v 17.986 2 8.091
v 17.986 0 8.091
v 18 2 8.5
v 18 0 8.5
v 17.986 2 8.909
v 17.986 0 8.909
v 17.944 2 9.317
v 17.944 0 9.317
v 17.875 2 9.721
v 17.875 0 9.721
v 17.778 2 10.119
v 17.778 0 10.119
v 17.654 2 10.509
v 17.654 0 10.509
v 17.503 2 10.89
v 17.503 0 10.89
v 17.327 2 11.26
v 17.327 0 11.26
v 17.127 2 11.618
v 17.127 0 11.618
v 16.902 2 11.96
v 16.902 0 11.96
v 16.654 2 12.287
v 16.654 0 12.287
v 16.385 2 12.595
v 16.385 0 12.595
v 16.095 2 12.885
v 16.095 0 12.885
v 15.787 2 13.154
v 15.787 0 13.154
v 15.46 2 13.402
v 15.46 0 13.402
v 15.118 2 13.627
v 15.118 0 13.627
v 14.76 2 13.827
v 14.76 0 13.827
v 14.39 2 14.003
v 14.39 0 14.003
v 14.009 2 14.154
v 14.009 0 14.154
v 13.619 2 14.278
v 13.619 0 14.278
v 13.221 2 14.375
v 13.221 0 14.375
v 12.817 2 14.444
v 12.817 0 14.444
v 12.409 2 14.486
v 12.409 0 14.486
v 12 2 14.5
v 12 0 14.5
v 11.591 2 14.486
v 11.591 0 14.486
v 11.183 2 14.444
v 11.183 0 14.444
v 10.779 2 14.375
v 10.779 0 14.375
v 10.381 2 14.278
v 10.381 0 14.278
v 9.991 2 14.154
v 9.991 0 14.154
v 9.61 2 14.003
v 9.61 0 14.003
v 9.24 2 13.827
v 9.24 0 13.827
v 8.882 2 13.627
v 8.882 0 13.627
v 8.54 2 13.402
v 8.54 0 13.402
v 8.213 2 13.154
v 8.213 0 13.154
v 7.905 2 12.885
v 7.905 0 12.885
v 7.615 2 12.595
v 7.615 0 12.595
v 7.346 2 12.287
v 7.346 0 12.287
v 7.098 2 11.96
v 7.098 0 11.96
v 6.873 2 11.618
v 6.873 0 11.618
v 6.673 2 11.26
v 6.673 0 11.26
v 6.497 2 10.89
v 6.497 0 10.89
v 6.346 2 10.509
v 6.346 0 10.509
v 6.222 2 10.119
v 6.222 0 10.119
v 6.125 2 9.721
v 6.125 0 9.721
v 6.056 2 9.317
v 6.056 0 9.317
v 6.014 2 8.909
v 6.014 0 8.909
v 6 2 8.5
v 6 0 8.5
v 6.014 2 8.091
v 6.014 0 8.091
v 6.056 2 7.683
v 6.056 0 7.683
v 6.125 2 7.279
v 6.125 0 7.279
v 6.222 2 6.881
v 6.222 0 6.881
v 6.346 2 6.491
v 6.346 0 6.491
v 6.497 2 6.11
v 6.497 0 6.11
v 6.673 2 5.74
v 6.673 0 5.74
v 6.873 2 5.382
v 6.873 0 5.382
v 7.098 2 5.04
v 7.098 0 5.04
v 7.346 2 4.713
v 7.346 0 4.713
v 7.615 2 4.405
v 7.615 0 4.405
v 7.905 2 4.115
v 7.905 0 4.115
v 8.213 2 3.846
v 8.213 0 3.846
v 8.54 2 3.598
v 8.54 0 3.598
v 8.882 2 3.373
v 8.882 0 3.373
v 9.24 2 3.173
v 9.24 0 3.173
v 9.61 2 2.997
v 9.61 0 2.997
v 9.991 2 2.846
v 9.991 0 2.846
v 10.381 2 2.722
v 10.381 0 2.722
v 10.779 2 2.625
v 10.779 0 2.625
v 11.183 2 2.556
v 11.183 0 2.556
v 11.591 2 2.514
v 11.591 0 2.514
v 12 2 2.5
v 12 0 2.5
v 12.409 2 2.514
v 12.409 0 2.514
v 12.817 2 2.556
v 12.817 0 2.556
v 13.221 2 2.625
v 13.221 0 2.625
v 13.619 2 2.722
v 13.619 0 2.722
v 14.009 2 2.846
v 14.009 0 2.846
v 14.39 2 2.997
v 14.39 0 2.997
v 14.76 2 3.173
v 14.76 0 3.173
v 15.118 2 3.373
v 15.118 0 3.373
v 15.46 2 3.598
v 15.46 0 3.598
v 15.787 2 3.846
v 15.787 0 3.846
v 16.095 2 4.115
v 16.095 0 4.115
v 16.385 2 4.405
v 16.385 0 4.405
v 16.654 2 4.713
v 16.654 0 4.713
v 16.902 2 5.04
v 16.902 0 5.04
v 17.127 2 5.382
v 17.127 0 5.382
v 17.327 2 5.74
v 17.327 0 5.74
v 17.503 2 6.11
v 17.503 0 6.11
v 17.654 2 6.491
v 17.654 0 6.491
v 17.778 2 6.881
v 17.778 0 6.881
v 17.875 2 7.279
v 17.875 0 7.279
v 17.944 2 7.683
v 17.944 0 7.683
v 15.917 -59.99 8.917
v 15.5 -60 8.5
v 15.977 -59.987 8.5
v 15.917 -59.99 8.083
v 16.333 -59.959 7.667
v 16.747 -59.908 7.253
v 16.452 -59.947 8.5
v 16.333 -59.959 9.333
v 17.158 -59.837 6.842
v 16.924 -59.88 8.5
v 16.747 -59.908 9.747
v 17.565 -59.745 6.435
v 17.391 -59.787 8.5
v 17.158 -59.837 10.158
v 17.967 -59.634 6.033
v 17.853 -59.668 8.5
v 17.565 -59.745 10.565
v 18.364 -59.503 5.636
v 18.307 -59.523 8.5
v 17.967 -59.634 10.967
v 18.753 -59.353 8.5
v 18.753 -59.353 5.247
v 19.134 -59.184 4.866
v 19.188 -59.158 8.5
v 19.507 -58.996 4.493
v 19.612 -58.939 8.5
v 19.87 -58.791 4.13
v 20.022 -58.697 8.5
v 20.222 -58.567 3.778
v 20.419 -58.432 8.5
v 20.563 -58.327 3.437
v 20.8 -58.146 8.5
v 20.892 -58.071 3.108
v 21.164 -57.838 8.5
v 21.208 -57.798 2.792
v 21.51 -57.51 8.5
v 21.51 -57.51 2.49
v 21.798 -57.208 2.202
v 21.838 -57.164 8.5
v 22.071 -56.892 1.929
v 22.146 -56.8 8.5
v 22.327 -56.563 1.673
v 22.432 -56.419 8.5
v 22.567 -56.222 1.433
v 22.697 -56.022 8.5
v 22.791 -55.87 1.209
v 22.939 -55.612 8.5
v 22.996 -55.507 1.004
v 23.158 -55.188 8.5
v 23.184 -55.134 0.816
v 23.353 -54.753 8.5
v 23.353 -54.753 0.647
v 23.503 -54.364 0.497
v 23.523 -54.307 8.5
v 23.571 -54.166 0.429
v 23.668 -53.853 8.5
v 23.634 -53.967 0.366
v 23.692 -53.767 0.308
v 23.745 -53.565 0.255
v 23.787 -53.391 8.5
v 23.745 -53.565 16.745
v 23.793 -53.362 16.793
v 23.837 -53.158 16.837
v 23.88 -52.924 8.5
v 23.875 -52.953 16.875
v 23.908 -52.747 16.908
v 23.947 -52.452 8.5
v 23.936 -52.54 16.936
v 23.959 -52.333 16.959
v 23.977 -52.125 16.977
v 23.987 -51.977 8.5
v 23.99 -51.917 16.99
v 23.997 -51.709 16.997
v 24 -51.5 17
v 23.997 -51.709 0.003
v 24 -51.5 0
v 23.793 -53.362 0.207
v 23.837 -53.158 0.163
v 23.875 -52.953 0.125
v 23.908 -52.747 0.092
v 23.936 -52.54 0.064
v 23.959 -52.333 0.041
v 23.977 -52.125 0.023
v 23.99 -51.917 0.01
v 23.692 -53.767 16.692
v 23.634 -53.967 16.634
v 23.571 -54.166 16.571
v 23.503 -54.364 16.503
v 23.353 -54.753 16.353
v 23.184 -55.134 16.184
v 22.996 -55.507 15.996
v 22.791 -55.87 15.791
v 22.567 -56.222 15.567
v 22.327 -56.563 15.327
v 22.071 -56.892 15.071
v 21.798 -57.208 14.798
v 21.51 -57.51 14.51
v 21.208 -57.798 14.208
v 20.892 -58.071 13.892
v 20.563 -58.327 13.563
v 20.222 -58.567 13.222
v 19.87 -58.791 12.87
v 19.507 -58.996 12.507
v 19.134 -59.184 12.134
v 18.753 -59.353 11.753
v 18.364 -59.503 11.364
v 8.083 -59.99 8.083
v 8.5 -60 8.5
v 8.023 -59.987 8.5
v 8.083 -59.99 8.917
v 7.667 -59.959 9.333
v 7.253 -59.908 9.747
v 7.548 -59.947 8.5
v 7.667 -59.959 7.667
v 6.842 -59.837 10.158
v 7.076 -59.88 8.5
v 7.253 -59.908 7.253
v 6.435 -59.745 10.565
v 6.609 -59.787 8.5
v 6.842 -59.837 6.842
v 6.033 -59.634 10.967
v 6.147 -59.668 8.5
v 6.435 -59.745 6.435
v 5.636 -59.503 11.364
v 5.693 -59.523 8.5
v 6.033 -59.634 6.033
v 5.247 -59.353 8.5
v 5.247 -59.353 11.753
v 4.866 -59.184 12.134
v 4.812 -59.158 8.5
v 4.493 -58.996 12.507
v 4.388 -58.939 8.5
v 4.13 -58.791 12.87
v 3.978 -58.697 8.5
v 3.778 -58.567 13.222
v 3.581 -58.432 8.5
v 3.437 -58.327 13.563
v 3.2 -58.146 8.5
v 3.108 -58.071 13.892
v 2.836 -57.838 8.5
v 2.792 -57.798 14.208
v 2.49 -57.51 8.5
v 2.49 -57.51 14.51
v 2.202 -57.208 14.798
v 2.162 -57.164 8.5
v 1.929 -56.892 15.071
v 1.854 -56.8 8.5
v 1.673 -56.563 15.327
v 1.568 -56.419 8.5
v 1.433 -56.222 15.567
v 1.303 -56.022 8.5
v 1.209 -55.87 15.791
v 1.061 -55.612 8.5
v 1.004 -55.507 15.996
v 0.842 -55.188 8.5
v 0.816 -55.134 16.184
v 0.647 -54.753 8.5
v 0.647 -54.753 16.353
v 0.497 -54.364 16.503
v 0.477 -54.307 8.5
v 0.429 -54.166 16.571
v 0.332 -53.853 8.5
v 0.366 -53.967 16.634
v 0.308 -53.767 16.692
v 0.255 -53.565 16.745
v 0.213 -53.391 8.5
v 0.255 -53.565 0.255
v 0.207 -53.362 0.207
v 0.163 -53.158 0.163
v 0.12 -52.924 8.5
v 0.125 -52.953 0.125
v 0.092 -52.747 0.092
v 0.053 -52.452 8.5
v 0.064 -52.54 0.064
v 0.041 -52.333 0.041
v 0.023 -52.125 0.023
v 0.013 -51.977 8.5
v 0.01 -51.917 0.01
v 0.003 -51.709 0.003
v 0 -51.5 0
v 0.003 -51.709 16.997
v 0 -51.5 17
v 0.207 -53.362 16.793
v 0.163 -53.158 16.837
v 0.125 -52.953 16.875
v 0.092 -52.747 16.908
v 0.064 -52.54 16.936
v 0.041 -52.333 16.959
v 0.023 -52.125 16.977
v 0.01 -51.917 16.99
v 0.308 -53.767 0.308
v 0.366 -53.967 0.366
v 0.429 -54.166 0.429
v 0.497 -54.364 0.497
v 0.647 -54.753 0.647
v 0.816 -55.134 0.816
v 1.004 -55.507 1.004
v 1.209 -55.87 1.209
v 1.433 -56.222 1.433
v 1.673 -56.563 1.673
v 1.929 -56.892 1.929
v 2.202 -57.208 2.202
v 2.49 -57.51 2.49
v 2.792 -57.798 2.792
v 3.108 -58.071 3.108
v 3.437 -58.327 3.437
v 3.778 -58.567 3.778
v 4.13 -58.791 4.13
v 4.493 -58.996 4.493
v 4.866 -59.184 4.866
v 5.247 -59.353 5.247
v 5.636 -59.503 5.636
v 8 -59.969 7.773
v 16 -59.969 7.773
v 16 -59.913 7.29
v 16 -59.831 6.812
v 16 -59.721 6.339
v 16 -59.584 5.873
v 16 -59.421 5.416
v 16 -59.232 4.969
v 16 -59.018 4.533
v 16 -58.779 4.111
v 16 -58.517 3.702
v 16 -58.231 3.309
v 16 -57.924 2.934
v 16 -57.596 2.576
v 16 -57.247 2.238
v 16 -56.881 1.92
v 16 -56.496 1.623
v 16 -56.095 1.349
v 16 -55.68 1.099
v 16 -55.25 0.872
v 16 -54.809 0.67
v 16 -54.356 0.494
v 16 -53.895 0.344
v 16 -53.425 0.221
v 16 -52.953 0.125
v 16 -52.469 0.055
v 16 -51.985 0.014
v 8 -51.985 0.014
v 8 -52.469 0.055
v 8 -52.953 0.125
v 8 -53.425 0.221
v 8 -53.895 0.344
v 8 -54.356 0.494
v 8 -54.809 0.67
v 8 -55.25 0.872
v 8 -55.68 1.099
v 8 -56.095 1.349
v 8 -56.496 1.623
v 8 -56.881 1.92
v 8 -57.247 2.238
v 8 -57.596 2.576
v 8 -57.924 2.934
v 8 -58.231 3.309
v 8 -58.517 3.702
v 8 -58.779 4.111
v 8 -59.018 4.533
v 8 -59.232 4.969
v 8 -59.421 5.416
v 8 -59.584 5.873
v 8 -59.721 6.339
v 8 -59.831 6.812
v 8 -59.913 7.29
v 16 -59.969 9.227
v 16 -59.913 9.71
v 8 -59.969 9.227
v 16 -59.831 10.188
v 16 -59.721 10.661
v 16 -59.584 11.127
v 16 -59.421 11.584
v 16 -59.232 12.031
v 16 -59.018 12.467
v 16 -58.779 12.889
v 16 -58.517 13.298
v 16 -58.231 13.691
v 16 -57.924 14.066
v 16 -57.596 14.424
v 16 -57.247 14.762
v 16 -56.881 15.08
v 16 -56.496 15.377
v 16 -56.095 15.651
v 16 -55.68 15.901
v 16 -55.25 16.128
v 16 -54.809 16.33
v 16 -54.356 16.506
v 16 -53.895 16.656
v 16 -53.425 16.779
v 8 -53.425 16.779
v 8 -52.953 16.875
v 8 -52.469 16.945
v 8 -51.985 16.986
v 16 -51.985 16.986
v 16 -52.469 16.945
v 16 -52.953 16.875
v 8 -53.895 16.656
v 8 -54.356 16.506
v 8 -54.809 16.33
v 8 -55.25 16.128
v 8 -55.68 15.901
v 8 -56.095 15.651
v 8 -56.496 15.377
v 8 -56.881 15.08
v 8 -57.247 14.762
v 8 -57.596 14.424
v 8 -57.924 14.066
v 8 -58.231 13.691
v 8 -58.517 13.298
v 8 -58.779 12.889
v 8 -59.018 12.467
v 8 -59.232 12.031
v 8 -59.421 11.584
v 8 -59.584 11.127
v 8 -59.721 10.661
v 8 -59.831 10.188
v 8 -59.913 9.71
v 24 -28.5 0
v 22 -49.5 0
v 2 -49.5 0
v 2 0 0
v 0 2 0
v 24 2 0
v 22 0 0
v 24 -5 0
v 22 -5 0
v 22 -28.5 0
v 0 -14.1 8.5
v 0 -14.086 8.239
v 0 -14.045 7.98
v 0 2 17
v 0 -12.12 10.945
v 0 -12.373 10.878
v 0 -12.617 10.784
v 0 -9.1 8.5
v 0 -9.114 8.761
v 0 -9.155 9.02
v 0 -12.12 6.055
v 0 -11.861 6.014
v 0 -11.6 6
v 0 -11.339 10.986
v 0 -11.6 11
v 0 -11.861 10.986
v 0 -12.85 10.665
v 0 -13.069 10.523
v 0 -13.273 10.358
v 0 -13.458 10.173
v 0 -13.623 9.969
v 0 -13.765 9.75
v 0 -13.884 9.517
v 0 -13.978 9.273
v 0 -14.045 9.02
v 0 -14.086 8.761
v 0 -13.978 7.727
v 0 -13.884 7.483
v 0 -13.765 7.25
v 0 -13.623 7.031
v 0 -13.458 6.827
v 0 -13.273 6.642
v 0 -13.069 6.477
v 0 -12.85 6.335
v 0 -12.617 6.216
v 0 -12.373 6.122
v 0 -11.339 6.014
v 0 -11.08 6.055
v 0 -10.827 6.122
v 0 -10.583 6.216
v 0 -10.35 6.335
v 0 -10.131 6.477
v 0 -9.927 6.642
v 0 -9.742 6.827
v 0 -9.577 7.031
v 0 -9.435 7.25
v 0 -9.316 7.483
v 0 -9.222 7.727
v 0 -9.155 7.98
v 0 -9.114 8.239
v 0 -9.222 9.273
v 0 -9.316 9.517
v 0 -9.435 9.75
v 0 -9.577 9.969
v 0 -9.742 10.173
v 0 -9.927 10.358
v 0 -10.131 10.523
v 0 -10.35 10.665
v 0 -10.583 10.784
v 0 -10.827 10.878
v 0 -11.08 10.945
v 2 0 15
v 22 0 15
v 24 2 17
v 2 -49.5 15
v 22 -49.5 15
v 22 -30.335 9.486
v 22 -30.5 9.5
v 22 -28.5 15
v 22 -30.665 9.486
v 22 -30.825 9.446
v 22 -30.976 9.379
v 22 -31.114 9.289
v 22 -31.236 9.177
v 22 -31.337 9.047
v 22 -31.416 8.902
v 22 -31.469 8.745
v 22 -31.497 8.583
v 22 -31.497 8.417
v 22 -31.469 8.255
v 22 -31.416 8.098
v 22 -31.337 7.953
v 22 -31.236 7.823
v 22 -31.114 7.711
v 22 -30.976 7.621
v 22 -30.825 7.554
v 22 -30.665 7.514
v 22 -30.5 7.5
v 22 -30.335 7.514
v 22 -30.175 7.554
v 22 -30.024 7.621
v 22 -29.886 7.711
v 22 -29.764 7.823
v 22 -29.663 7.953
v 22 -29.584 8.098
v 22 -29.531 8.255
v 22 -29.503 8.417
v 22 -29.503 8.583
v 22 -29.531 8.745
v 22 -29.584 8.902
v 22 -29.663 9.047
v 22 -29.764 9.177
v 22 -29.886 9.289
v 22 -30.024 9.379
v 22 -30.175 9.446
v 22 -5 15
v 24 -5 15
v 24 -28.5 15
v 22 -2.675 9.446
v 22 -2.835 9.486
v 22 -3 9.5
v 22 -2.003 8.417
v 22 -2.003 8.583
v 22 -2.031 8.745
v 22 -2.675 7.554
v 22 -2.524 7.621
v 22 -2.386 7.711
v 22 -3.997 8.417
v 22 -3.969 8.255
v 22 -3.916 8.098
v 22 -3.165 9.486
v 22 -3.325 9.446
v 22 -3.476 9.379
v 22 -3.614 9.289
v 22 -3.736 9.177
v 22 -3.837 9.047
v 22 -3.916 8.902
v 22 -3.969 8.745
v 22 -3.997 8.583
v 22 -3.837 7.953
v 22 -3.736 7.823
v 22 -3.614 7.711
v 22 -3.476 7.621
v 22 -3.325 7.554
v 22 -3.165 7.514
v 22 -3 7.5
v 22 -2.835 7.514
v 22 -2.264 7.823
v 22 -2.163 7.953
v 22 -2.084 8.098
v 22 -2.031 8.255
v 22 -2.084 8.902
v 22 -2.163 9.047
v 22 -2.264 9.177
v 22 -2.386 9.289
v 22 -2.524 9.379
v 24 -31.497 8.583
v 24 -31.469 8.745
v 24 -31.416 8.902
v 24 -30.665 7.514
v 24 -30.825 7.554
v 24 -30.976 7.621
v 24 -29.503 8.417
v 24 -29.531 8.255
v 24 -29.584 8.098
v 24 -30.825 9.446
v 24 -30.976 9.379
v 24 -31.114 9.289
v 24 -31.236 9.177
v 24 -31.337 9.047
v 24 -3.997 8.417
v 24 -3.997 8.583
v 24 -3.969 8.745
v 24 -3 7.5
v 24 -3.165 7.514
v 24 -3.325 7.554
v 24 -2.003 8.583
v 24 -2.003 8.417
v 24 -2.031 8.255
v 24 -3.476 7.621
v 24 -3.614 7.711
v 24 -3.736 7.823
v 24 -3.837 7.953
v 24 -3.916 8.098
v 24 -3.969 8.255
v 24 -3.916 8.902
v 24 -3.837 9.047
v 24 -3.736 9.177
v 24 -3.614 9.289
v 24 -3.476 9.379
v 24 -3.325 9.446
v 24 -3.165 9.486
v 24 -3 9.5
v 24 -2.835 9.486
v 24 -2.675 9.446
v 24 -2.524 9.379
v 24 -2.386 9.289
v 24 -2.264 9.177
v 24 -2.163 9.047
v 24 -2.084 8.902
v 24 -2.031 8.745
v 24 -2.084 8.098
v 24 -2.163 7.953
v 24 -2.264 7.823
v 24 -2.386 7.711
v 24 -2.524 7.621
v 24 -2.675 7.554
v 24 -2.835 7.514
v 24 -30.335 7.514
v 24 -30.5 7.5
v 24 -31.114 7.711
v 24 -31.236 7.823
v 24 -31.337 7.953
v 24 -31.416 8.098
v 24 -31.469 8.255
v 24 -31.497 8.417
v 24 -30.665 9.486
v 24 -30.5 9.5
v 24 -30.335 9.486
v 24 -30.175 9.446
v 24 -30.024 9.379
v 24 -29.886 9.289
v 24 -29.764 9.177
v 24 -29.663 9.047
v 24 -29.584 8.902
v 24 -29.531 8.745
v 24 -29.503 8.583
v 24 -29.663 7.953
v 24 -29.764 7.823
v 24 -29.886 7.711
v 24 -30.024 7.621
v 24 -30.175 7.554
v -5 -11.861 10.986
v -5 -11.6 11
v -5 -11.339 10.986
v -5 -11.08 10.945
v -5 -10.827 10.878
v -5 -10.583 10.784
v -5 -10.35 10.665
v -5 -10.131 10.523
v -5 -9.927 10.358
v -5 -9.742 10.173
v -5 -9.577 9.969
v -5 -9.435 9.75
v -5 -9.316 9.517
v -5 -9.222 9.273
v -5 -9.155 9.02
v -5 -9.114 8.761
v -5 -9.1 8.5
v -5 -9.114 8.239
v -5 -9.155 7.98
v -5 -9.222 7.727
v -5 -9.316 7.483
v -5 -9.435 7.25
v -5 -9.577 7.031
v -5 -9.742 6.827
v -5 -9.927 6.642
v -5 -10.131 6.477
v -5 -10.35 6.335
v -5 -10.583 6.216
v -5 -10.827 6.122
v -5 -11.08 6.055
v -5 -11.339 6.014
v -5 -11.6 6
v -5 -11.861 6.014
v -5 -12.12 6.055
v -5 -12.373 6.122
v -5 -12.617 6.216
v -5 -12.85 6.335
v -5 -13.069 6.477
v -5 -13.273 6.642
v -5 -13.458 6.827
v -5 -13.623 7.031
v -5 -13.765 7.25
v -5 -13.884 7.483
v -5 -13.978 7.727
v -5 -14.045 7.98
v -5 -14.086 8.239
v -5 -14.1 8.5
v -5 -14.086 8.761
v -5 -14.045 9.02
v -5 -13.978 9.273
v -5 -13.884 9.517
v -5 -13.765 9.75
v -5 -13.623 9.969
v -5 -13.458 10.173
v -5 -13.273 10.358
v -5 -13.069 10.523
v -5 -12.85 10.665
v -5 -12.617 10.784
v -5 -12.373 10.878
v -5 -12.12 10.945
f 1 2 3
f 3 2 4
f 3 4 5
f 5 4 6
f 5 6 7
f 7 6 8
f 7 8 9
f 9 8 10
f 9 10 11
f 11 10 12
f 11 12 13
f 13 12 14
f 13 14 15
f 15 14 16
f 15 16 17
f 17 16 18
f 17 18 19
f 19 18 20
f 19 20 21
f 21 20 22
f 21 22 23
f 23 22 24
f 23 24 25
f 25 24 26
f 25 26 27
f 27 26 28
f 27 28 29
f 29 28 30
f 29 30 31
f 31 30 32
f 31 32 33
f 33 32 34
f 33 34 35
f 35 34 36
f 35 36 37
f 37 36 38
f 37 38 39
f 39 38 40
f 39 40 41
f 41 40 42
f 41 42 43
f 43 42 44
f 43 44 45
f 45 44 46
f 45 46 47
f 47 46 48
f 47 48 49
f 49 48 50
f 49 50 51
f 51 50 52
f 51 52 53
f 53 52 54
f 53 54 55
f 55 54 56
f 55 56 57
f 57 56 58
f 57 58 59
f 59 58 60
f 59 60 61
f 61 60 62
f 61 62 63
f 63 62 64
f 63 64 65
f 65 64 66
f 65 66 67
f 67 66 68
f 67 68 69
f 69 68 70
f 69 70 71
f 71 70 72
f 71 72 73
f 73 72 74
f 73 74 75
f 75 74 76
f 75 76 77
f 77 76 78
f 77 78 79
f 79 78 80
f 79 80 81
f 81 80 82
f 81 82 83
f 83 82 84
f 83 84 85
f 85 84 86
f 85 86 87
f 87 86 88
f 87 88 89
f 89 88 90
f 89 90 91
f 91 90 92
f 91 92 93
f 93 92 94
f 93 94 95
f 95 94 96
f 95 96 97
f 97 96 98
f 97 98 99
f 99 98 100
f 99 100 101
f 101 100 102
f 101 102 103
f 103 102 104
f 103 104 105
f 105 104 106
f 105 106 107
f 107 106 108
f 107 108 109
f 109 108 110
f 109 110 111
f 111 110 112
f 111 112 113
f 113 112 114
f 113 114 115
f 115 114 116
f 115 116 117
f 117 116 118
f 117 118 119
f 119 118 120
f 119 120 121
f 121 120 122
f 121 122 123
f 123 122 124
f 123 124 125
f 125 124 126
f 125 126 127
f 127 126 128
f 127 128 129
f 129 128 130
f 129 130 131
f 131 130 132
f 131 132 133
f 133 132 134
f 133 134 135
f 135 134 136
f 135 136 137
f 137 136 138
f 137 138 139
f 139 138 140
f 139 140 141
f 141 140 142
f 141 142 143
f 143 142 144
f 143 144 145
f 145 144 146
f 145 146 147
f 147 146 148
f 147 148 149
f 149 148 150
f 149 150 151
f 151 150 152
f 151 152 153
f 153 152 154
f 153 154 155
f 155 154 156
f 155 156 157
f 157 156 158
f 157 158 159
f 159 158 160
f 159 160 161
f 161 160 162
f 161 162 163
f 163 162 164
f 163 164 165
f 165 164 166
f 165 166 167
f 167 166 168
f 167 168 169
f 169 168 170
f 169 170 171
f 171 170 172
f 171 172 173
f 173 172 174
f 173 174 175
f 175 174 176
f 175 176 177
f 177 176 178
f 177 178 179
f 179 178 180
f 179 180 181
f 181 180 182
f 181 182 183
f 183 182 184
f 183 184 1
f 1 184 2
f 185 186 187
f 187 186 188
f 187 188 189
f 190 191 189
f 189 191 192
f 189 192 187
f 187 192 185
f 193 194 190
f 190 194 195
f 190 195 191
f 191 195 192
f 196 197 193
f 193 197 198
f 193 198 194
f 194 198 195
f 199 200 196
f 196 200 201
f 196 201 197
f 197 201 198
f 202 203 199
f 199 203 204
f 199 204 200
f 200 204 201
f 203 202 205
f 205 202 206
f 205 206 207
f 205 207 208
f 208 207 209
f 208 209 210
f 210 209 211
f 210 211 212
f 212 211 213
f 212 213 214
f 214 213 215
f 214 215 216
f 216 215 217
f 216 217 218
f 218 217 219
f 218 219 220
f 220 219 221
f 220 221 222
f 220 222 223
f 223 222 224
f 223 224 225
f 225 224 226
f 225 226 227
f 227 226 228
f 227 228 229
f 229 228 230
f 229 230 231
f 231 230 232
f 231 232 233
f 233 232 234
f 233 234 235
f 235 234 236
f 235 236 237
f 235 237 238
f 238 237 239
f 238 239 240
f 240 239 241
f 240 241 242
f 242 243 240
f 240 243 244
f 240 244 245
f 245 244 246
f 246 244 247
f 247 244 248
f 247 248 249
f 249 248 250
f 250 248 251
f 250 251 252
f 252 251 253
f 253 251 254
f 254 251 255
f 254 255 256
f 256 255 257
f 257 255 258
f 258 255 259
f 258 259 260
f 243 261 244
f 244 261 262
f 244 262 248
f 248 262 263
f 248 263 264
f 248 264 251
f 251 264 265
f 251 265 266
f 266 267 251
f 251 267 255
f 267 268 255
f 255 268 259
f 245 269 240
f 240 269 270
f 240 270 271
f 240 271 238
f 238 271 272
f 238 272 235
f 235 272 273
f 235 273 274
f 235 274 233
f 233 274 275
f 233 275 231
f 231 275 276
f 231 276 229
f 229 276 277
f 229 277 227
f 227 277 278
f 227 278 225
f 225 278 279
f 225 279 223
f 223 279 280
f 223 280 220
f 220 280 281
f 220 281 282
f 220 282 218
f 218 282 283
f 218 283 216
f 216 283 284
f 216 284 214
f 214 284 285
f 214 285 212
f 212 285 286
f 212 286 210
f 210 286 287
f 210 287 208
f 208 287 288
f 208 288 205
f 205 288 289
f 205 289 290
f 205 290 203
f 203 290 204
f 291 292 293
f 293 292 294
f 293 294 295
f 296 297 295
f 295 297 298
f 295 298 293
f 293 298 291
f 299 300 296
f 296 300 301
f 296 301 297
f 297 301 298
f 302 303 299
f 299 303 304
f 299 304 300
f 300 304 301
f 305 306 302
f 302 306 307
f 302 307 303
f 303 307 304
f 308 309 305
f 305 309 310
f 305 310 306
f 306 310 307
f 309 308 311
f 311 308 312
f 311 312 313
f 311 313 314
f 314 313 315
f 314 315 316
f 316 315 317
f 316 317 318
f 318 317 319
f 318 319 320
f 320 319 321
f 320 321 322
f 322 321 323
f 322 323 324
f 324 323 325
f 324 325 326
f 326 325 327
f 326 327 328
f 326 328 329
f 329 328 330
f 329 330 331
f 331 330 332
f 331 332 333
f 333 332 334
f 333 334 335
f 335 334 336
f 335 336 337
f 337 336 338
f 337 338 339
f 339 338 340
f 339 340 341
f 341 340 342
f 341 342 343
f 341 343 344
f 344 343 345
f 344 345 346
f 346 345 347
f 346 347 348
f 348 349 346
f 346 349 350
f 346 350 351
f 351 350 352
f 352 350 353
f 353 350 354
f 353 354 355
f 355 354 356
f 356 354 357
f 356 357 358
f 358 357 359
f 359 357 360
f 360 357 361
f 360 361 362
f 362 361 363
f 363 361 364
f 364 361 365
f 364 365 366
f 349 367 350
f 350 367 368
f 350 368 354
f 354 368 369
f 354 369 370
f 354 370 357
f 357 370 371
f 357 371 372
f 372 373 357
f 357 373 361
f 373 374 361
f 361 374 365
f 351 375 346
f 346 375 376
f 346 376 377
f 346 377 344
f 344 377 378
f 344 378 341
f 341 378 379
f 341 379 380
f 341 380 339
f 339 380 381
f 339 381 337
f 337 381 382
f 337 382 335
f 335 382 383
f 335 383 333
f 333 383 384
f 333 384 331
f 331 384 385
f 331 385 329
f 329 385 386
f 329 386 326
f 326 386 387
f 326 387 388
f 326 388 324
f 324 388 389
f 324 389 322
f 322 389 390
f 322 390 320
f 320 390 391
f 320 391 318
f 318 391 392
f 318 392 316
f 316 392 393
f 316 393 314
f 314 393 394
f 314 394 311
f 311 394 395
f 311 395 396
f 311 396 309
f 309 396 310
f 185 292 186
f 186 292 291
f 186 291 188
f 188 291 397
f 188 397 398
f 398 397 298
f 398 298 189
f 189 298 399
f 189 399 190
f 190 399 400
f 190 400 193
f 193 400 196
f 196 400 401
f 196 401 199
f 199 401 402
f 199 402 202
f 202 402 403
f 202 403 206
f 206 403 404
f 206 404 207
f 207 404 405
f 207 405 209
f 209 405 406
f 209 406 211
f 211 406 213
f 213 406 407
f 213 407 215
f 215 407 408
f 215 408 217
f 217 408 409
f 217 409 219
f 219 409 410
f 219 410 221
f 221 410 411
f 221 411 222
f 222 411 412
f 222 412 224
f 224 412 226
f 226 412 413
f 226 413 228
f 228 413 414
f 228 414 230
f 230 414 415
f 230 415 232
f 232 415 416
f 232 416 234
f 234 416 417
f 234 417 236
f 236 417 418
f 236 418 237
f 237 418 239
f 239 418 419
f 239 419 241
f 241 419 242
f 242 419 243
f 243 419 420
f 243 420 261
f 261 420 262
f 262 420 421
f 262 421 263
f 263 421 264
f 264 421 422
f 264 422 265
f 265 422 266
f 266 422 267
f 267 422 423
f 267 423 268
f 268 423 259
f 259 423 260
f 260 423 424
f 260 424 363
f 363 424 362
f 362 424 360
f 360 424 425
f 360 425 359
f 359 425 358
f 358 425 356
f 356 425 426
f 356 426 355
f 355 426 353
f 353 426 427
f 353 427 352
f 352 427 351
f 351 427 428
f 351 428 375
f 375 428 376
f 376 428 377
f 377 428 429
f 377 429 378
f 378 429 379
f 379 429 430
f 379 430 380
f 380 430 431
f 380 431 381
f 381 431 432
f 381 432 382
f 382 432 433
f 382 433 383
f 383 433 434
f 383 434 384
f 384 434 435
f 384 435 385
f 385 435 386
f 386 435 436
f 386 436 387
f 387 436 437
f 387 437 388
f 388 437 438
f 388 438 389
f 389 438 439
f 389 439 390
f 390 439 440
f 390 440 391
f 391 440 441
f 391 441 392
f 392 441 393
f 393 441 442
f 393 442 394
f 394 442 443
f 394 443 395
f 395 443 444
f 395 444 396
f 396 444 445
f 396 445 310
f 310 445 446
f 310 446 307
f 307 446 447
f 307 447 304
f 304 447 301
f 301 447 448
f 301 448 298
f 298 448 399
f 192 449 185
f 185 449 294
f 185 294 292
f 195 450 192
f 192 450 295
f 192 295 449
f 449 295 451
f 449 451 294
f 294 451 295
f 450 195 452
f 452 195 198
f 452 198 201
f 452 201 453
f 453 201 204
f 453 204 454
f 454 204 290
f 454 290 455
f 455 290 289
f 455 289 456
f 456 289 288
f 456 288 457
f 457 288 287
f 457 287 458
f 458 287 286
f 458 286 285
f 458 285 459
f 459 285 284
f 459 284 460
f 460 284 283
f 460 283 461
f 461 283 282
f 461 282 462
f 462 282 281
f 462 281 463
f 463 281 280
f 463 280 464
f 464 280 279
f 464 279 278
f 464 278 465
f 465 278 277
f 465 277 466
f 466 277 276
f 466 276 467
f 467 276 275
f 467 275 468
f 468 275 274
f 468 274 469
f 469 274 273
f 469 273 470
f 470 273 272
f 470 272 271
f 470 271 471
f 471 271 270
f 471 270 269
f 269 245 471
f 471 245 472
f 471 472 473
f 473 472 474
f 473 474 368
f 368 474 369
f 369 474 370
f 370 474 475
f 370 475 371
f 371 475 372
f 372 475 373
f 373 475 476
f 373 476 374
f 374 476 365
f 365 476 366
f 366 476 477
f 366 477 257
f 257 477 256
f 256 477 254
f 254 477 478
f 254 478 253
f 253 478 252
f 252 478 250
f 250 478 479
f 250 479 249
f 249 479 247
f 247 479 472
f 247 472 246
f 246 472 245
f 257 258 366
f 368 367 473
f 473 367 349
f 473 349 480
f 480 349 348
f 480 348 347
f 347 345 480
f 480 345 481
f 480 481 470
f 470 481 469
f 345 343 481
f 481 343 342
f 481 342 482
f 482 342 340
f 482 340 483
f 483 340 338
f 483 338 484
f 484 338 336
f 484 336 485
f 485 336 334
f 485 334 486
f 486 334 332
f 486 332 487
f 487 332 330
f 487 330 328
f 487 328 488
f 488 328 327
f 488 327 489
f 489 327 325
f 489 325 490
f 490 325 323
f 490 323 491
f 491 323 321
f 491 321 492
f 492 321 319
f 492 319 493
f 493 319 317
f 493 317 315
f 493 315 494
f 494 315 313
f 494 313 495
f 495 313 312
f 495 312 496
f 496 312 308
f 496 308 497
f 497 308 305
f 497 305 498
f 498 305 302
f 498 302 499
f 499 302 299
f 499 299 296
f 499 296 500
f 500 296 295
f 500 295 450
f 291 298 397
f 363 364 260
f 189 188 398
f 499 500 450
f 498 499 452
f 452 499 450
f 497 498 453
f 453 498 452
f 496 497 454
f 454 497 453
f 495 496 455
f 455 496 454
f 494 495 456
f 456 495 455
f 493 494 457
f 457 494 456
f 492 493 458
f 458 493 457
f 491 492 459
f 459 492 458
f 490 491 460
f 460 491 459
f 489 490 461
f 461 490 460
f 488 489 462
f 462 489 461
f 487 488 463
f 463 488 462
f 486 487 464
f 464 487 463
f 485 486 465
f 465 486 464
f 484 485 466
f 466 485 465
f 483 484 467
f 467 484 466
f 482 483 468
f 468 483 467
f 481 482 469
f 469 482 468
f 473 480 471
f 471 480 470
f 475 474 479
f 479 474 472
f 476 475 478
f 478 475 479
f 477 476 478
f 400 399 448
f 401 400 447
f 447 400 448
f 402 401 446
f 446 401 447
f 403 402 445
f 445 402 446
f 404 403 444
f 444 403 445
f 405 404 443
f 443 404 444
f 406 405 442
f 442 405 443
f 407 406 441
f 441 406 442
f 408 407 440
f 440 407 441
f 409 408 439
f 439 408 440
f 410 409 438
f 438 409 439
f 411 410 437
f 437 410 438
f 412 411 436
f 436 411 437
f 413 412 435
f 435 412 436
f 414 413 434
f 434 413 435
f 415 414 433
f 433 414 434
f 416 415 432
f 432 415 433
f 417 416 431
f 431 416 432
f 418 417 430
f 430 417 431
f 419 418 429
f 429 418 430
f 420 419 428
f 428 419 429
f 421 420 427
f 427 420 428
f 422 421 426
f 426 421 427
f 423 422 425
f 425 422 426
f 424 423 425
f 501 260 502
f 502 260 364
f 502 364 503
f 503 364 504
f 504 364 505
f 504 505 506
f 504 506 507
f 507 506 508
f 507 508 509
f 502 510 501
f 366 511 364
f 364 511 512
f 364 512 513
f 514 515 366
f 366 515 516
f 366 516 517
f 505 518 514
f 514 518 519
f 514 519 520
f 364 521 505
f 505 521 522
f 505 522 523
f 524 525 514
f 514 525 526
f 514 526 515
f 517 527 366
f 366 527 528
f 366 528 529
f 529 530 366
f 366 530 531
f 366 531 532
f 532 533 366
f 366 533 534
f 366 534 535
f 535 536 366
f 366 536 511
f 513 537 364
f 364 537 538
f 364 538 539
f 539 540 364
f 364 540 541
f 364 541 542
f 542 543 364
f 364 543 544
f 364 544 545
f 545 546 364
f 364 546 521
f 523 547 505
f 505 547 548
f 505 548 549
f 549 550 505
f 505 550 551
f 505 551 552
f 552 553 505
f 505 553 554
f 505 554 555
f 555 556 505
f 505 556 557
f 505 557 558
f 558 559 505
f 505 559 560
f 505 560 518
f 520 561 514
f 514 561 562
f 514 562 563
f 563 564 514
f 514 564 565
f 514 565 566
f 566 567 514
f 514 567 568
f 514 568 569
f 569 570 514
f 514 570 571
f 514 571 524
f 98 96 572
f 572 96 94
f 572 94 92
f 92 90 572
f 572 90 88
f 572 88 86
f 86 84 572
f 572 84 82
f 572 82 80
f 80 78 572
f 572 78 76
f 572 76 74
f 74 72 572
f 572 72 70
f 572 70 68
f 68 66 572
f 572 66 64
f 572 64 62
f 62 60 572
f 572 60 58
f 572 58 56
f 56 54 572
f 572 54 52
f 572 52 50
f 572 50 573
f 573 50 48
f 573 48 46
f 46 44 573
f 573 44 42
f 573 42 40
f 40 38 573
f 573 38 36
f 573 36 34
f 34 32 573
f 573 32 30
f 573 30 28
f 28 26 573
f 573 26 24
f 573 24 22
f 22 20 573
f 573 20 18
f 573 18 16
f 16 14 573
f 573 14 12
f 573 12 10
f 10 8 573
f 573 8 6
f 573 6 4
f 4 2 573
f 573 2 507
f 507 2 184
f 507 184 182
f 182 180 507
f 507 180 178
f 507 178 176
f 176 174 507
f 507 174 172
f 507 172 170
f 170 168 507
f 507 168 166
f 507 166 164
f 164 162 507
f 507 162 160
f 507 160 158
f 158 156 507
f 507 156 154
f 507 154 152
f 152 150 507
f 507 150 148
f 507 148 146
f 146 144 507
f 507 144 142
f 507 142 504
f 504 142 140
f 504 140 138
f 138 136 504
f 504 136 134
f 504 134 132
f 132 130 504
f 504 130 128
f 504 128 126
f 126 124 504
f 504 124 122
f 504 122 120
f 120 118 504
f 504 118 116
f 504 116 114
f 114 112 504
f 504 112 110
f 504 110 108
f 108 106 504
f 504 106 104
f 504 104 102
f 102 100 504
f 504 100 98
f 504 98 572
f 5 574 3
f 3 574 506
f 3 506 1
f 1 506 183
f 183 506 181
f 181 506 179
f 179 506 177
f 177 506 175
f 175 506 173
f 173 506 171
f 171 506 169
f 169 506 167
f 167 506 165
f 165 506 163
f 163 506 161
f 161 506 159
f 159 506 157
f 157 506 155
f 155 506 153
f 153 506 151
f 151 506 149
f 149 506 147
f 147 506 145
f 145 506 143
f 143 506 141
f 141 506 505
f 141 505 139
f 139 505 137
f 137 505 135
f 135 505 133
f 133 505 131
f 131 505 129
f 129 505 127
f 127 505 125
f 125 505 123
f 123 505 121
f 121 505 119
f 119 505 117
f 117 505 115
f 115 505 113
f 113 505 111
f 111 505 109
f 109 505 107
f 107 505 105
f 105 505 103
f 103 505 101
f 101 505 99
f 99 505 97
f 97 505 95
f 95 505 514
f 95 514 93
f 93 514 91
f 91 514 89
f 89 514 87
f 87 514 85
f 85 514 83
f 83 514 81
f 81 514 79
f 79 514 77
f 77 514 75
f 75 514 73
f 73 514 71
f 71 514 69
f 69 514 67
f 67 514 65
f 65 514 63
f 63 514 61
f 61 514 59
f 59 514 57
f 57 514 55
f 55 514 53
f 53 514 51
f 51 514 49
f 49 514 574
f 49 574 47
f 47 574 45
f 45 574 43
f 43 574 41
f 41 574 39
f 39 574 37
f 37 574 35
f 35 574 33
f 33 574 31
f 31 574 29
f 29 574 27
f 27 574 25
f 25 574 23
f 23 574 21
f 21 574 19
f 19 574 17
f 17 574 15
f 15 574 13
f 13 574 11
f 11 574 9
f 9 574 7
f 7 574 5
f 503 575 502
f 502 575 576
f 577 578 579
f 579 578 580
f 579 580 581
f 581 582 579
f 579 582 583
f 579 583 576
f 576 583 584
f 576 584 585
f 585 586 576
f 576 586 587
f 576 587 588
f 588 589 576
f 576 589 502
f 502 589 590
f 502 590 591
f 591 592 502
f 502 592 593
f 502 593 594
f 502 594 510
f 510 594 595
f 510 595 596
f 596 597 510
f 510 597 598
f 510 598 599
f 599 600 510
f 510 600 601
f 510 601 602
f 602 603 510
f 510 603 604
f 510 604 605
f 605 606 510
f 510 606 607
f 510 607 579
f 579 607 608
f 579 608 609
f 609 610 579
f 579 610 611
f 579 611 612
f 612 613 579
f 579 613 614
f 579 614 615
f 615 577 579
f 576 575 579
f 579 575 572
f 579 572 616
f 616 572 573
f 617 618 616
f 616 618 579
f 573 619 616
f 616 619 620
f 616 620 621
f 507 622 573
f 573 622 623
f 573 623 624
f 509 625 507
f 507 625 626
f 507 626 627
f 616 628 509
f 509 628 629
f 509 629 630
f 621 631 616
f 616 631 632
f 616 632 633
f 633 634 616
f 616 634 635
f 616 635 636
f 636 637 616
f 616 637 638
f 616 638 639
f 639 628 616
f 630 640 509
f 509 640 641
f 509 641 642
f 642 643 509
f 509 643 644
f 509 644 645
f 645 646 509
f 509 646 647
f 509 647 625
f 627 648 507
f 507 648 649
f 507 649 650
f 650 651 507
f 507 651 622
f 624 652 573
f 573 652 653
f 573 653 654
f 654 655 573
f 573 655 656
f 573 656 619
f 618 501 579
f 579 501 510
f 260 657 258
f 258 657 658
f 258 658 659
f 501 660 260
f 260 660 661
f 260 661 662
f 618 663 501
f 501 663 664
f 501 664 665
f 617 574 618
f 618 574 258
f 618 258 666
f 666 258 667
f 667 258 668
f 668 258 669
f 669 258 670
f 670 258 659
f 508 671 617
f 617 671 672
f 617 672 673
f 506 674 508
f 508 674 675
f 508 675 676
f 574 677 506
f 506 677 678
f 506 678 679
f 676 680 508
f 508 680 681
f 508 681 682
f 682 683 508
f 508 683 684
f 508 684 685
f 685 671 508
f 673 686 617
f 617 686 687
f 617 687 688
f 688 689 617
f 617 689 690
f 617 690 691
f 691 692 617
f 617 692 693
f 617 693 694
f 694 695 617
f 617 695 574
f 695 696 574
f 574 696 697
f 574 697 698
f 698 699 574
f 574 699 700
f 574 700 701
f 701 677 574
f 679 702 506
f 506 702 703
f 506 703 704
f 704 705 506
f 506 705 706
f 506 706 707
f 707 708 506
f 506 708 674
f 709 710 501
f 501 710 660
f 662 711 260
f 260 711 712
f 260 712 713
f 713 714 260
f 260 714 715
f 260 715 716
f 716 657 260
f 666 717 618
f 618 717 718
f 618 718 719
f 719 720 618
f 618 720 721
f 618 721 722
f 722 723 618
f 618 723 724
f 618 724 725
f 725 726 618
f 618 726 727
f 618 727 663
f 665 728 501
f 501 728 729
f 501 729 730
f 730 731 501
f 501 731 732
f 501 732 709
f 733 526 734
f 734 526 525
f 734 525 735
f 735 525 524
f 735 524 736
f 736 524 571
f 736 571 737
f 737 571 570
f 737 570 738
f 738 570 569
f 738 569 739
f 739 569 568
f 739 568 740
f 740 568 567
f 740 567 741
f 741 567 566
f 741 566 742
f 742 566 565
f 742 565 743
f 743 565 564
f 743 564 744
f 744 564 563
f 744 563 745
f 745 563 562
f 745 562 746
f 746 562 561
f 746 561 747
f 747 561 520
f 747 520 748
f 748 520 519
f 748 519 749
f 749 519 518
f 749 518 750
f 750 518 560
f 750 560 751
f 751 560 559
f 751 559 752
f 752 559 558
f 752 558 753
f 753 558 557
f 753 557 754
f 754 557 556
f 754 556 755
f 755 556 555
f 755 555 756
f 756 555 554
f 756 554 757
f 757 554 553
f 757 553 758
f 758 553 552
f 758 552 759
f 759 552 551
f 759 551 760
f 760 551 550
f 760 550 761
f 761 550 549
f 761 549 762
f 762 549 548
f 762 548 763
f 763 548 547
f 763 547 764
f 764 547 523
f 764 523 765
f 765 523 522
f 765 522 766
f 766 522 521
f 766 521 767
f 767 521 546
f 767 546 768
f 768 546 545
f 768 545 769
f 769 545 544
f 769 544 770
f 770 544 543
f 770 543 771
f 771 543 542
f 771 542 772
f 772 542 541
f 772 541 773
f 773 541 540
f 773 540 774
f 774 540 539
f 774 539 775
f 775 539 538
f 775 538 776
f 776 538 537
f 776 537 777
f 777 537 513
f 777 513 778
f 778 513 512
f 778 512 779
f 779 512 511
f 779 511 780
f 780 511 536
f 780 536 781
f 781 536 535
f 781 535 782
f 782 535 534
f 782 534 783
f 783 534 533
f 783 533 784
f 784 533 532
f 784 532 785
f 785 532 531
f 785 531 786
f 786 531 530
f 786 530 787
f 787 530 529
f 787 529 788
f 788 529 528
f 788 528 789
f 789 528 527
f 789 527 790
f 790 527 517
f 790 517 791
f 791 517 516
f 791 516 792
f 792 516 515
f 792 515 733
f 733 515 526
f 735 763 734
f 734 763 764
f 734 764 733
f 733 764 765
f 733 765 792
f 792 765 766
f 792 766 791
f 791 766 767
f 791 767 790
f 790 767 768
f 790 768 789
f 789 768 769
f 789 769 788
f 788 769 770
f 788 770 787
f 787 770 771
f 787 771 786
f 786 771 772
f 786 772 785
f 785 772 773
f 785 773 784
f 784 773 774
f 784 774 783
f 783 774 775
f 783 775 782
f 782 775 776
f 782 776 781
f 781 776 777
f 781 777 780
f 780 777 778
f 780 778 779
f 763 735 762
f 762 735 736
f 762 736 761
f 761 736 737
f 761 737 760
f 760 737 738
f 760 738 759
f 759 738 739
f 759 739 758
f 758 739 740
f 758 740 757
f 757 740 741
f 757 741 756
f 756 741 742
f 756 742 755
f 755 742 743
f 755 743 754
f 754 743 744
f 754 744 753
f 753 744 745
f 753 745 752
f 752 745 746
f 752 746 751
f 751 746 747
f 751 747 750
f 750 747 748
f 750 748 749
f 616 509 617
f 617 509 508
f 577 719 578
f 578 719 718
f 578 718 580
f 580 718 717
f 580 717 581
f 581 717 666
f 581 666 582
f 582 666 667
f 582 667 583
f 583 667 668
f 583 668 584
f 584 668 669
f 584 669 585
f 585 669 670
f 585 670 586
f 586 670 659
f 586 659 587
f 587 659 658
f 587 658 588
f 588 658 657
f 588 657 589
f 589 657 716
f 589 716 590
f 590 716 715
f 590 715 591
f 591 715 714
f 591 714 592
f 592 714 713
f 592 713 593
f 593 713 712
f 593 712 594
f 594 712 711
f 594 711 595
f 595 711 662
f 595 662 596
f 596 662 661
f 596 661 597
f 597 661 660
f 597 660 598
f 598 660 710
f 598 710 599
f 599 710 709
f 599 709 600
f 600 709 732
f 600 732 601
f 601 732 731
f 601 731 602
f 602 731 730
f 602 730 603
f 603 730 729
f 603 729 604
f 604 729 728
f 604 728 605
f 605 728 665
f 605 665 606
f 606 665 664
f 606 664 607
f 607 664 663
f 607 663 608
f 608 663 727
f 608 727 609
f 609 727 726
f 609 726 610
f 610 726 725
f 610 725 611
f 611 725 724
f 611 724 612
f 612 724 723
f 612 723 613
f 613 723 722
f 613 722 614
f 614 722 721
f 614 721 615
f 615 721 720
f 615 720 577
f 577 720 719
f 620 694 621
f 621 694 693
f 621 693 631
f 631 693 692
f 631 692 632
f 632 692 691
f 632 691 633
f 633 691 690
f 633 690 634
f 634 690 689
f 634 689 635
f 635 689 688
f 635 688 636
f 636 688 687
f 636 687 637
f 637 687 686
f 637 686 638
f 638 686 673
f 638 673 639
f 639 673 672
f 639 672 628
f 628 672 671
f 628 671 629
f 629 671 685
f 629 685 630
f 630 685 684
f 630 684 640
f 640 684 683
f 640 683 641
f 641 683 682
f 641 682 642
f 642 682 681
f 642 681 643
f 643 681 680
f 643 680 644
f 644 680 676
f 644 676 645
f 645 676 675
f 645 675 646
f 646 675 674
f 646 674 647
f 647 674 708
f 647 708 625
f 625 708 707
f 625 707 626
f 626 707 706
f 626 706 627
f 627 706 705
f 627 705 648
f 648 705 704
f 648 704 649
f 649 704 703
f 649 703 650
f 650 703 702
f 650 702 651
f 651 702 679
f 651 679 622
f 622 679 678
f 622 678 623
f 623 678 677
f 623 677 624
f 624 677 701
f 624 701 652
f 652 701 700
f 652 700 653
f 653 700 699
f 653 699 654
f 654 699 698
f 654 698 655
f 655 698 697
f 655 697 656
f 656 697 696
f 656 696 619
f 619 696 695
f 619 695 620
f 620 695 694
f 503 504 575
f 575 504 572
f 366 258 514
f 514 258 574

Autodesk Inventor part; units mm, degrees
ref_plane "YZ Plane" through (0, 0, 0) normal (1, 0, 0) x (0, 1, 0)
ref_plane "XZ Plane" through (0, 0, 0) normal (0, 1, 0) x (-1, 0, 0)
ref_plane "XY Plane" through (0, 0, 0) normal (0, 0, 1) x (1, 0, 0)
sketch "Sketch1" plane through (0, 0, 0) normal (0, 0, 1) x (1, 0, 0)
  line L0 (0, 0) -> (24, 0)
  line L1 (24, 0) -> (24, -60)
  line L2 (24, -60) -> (0, -60)
  line L3 (0, -60) -> (0, 0)
  dimension "d0" = 24
  dimension "d1" = 60
extrude "Extrusion1" add sketch "Sketch1" along normal blind 2
sketch "Sketch2" plane through (0, 0, 2) normal (0, 0, 1) x (1, 0, 0)
  line L0 (0, -60) -> (24, -60) projected
  line L1 (0, 0) -> (2, 0)
  line L2 (2, 0) -> (2, -60)
  line L3 (2, -60) -> (0, -60)
  line L4 (0, -60) -> (0, 0)
  line L5 (24, -60) -> (24, 0) projected
  line L6 (24, 0) -> (22, 0)
  line L7 (22, 0) -> (22, -60)
  line L8 (22, -60) -> (24, -60)
  line L9 (24, -60) -> (24, 0)
  dimension "d4" = 2
  dimension "d5" = 2
extrude "Extrusion2" add sketch "Sketch2" along normal blind 15
sketch "Sketch3" plane through (24, -60, 0) normal (1, 0, 0) x (0, 0, -1)
  circle A0 centre (-8.5, 57) radius 1
  circle A1 centre (-8.5, 29.5) radius 1
  line L0 (-17, 0) -> (-17, 60) projected
  line L1 (0, 60) -> (-17, 60) projected
  dimension "d8" = 2
  dimension "d9" = 2
  dimension "d10" = 8.5
  dimension "d11" = 8.5
  dimension "d12" = 27.5
  dimension "d13" = 3
extrude "Extrusion3" cut sketch "Sketch3" against normal up to surface (2 mm away)
sketch "Sketch4" plane through (24, -60, 0) normal (1, 0, 0) x (0, 0, -1)
  line L0 (-17, 60) -> (-17, 0) projected
  line L1 (-17, 55) -> (-2, 55)
  line L2 (-2, 55) -> (-2, 31.5)
  line L3 (-2, 31.5) -> (-17, 31.5)
  line L4 (-17, 31.5) -> (-17, 55)
  circle A0 centre (-8.5, 57) radius 1 projected
  circle A1 centre (-8.5, 29.5) radius 1 projected
  point P0 (-17, 31.5)
  dimension "d23" = 15
  dimension "d24" = 23.5
  dimension "d25" = 2
  dimension "d26" = 2
extrude "Extrusion4" cut sketch "Sketch4" against normal up to surface (2 mm away) contours L1 L2 L3 L0
sketch "Sketch5" plane through (0, -60, 0) normal (-1, 0, 0) x (0, 0, 1)
  circle A0 centre (8.5, 48.4) radius 2.5
  circle A1 centre (8.5, 57) radius 1 projected
  point P0 (0, 60)
  dimension "d29" = 5
  dimension "d32" = 8.6
  dimension "d33" = 0
extrude "Extrusion5" add sketch "Sketch5" along normal blind 5 contours A0
sketch "Sketch6" plane through (2, -60, 2) normal (1, 0, 0) x (0, 0, -1)
  line L0 (2, 60) -> (-15, 60) projected
  line L1 (2, 0) -> (-15, 0) projected
  line L2 (-15, 60) -> (-13, 60)
  line L3 (-13, 60) -> (-13, 0)
  line L4 (-13, 0) -> (-15, 0)
  line L5 (-15, 0) -> (-15, 60)
  dimension "d34" = 2
extrude "Extrusion6" add sketch "Sketch6" along normal up to surface (22 mm away)
sketch "Sketch7" plane through (0, 0, 0) normal (0, 0, -1) x (-1, 0, 0)
  line L0 (-24, -5) -> (-22, -5) projected
  line L1 (-24, -5) -> (-22, -5)
  line L2 (-22, -5) -> (-22, -28.5)
  line L3 (-22, -28.5) -> (-24, -28.5)
  line L4 (-24, -28.5) -> (-24, -5)
  line L5 (-2, -60) -> (-22, -60) projected
  line L6 (-22, 0) -> (-2, 0)
  line L7 (-2, 0) -> (-2, -60)
  line L8 (-2, -60) -> (-22, -60)
  line L9 (-22, -60) -> (-22, 0)
  point P0 (0, -60)
  point P1 (-22, -5)
  point P2 (-22, -28.5)
  point P3 (-22, -60)
extrude "Extrusion7" cut sketch "Sketch7" against normal up to surface (2 mm away)
sketch "Sketch8" plane through (22, -60, 0) normal (0, -1, 0) x (1, 0, 0)
  line L0 (-20, 15) -> (0, 15)
  line L1 (0, 15) -> (0, 0)
  line L2 (0, 0) -> (-20, 0)
  line L3 (-20, 0) -> (-20, 15)
  point P0 (-22, 0)
extrude "Extrusion8" add sketch "Sketch8" against normal blind 10.5
sketch "Sketch9" plane through (0, 0, 0) normal (0, 1, 0) x (1, 0, 0)
  line L0 (24, -17) -> (0, -17)
  line L1 (0, -17) -> (0, 0)
  line L2 (0, 0) -> (24, 0)
  line L3 (24, 0) -> (24, -17)
extrude "Extrusion9" add sketch "Sketch9" along normal blind 2
fillet "Fillet1" radius 8.5 4 edges at (12, -60, 17) (0, -60, 8.5) (12, -60, 0) (24, -60, 8.5)
sketch "Sketch10" plane through (0, 2, 0) normal (0, 1, 0) x (1, 0, 0)
  circle A0 centre (12, -8.5) radius 6
  line L0 (0, 0) -> (0, -17) projected
  line L1 (0, -17) -> (24, -17) projected
  dimension "d45" = 12
  dimension "d46" = 12
  dimension "d47" = 8.5
extrude "Extrusion10" cut sketch "Sketch10" against normal up to surface (2 mm away)
properties part number "juncao4"
